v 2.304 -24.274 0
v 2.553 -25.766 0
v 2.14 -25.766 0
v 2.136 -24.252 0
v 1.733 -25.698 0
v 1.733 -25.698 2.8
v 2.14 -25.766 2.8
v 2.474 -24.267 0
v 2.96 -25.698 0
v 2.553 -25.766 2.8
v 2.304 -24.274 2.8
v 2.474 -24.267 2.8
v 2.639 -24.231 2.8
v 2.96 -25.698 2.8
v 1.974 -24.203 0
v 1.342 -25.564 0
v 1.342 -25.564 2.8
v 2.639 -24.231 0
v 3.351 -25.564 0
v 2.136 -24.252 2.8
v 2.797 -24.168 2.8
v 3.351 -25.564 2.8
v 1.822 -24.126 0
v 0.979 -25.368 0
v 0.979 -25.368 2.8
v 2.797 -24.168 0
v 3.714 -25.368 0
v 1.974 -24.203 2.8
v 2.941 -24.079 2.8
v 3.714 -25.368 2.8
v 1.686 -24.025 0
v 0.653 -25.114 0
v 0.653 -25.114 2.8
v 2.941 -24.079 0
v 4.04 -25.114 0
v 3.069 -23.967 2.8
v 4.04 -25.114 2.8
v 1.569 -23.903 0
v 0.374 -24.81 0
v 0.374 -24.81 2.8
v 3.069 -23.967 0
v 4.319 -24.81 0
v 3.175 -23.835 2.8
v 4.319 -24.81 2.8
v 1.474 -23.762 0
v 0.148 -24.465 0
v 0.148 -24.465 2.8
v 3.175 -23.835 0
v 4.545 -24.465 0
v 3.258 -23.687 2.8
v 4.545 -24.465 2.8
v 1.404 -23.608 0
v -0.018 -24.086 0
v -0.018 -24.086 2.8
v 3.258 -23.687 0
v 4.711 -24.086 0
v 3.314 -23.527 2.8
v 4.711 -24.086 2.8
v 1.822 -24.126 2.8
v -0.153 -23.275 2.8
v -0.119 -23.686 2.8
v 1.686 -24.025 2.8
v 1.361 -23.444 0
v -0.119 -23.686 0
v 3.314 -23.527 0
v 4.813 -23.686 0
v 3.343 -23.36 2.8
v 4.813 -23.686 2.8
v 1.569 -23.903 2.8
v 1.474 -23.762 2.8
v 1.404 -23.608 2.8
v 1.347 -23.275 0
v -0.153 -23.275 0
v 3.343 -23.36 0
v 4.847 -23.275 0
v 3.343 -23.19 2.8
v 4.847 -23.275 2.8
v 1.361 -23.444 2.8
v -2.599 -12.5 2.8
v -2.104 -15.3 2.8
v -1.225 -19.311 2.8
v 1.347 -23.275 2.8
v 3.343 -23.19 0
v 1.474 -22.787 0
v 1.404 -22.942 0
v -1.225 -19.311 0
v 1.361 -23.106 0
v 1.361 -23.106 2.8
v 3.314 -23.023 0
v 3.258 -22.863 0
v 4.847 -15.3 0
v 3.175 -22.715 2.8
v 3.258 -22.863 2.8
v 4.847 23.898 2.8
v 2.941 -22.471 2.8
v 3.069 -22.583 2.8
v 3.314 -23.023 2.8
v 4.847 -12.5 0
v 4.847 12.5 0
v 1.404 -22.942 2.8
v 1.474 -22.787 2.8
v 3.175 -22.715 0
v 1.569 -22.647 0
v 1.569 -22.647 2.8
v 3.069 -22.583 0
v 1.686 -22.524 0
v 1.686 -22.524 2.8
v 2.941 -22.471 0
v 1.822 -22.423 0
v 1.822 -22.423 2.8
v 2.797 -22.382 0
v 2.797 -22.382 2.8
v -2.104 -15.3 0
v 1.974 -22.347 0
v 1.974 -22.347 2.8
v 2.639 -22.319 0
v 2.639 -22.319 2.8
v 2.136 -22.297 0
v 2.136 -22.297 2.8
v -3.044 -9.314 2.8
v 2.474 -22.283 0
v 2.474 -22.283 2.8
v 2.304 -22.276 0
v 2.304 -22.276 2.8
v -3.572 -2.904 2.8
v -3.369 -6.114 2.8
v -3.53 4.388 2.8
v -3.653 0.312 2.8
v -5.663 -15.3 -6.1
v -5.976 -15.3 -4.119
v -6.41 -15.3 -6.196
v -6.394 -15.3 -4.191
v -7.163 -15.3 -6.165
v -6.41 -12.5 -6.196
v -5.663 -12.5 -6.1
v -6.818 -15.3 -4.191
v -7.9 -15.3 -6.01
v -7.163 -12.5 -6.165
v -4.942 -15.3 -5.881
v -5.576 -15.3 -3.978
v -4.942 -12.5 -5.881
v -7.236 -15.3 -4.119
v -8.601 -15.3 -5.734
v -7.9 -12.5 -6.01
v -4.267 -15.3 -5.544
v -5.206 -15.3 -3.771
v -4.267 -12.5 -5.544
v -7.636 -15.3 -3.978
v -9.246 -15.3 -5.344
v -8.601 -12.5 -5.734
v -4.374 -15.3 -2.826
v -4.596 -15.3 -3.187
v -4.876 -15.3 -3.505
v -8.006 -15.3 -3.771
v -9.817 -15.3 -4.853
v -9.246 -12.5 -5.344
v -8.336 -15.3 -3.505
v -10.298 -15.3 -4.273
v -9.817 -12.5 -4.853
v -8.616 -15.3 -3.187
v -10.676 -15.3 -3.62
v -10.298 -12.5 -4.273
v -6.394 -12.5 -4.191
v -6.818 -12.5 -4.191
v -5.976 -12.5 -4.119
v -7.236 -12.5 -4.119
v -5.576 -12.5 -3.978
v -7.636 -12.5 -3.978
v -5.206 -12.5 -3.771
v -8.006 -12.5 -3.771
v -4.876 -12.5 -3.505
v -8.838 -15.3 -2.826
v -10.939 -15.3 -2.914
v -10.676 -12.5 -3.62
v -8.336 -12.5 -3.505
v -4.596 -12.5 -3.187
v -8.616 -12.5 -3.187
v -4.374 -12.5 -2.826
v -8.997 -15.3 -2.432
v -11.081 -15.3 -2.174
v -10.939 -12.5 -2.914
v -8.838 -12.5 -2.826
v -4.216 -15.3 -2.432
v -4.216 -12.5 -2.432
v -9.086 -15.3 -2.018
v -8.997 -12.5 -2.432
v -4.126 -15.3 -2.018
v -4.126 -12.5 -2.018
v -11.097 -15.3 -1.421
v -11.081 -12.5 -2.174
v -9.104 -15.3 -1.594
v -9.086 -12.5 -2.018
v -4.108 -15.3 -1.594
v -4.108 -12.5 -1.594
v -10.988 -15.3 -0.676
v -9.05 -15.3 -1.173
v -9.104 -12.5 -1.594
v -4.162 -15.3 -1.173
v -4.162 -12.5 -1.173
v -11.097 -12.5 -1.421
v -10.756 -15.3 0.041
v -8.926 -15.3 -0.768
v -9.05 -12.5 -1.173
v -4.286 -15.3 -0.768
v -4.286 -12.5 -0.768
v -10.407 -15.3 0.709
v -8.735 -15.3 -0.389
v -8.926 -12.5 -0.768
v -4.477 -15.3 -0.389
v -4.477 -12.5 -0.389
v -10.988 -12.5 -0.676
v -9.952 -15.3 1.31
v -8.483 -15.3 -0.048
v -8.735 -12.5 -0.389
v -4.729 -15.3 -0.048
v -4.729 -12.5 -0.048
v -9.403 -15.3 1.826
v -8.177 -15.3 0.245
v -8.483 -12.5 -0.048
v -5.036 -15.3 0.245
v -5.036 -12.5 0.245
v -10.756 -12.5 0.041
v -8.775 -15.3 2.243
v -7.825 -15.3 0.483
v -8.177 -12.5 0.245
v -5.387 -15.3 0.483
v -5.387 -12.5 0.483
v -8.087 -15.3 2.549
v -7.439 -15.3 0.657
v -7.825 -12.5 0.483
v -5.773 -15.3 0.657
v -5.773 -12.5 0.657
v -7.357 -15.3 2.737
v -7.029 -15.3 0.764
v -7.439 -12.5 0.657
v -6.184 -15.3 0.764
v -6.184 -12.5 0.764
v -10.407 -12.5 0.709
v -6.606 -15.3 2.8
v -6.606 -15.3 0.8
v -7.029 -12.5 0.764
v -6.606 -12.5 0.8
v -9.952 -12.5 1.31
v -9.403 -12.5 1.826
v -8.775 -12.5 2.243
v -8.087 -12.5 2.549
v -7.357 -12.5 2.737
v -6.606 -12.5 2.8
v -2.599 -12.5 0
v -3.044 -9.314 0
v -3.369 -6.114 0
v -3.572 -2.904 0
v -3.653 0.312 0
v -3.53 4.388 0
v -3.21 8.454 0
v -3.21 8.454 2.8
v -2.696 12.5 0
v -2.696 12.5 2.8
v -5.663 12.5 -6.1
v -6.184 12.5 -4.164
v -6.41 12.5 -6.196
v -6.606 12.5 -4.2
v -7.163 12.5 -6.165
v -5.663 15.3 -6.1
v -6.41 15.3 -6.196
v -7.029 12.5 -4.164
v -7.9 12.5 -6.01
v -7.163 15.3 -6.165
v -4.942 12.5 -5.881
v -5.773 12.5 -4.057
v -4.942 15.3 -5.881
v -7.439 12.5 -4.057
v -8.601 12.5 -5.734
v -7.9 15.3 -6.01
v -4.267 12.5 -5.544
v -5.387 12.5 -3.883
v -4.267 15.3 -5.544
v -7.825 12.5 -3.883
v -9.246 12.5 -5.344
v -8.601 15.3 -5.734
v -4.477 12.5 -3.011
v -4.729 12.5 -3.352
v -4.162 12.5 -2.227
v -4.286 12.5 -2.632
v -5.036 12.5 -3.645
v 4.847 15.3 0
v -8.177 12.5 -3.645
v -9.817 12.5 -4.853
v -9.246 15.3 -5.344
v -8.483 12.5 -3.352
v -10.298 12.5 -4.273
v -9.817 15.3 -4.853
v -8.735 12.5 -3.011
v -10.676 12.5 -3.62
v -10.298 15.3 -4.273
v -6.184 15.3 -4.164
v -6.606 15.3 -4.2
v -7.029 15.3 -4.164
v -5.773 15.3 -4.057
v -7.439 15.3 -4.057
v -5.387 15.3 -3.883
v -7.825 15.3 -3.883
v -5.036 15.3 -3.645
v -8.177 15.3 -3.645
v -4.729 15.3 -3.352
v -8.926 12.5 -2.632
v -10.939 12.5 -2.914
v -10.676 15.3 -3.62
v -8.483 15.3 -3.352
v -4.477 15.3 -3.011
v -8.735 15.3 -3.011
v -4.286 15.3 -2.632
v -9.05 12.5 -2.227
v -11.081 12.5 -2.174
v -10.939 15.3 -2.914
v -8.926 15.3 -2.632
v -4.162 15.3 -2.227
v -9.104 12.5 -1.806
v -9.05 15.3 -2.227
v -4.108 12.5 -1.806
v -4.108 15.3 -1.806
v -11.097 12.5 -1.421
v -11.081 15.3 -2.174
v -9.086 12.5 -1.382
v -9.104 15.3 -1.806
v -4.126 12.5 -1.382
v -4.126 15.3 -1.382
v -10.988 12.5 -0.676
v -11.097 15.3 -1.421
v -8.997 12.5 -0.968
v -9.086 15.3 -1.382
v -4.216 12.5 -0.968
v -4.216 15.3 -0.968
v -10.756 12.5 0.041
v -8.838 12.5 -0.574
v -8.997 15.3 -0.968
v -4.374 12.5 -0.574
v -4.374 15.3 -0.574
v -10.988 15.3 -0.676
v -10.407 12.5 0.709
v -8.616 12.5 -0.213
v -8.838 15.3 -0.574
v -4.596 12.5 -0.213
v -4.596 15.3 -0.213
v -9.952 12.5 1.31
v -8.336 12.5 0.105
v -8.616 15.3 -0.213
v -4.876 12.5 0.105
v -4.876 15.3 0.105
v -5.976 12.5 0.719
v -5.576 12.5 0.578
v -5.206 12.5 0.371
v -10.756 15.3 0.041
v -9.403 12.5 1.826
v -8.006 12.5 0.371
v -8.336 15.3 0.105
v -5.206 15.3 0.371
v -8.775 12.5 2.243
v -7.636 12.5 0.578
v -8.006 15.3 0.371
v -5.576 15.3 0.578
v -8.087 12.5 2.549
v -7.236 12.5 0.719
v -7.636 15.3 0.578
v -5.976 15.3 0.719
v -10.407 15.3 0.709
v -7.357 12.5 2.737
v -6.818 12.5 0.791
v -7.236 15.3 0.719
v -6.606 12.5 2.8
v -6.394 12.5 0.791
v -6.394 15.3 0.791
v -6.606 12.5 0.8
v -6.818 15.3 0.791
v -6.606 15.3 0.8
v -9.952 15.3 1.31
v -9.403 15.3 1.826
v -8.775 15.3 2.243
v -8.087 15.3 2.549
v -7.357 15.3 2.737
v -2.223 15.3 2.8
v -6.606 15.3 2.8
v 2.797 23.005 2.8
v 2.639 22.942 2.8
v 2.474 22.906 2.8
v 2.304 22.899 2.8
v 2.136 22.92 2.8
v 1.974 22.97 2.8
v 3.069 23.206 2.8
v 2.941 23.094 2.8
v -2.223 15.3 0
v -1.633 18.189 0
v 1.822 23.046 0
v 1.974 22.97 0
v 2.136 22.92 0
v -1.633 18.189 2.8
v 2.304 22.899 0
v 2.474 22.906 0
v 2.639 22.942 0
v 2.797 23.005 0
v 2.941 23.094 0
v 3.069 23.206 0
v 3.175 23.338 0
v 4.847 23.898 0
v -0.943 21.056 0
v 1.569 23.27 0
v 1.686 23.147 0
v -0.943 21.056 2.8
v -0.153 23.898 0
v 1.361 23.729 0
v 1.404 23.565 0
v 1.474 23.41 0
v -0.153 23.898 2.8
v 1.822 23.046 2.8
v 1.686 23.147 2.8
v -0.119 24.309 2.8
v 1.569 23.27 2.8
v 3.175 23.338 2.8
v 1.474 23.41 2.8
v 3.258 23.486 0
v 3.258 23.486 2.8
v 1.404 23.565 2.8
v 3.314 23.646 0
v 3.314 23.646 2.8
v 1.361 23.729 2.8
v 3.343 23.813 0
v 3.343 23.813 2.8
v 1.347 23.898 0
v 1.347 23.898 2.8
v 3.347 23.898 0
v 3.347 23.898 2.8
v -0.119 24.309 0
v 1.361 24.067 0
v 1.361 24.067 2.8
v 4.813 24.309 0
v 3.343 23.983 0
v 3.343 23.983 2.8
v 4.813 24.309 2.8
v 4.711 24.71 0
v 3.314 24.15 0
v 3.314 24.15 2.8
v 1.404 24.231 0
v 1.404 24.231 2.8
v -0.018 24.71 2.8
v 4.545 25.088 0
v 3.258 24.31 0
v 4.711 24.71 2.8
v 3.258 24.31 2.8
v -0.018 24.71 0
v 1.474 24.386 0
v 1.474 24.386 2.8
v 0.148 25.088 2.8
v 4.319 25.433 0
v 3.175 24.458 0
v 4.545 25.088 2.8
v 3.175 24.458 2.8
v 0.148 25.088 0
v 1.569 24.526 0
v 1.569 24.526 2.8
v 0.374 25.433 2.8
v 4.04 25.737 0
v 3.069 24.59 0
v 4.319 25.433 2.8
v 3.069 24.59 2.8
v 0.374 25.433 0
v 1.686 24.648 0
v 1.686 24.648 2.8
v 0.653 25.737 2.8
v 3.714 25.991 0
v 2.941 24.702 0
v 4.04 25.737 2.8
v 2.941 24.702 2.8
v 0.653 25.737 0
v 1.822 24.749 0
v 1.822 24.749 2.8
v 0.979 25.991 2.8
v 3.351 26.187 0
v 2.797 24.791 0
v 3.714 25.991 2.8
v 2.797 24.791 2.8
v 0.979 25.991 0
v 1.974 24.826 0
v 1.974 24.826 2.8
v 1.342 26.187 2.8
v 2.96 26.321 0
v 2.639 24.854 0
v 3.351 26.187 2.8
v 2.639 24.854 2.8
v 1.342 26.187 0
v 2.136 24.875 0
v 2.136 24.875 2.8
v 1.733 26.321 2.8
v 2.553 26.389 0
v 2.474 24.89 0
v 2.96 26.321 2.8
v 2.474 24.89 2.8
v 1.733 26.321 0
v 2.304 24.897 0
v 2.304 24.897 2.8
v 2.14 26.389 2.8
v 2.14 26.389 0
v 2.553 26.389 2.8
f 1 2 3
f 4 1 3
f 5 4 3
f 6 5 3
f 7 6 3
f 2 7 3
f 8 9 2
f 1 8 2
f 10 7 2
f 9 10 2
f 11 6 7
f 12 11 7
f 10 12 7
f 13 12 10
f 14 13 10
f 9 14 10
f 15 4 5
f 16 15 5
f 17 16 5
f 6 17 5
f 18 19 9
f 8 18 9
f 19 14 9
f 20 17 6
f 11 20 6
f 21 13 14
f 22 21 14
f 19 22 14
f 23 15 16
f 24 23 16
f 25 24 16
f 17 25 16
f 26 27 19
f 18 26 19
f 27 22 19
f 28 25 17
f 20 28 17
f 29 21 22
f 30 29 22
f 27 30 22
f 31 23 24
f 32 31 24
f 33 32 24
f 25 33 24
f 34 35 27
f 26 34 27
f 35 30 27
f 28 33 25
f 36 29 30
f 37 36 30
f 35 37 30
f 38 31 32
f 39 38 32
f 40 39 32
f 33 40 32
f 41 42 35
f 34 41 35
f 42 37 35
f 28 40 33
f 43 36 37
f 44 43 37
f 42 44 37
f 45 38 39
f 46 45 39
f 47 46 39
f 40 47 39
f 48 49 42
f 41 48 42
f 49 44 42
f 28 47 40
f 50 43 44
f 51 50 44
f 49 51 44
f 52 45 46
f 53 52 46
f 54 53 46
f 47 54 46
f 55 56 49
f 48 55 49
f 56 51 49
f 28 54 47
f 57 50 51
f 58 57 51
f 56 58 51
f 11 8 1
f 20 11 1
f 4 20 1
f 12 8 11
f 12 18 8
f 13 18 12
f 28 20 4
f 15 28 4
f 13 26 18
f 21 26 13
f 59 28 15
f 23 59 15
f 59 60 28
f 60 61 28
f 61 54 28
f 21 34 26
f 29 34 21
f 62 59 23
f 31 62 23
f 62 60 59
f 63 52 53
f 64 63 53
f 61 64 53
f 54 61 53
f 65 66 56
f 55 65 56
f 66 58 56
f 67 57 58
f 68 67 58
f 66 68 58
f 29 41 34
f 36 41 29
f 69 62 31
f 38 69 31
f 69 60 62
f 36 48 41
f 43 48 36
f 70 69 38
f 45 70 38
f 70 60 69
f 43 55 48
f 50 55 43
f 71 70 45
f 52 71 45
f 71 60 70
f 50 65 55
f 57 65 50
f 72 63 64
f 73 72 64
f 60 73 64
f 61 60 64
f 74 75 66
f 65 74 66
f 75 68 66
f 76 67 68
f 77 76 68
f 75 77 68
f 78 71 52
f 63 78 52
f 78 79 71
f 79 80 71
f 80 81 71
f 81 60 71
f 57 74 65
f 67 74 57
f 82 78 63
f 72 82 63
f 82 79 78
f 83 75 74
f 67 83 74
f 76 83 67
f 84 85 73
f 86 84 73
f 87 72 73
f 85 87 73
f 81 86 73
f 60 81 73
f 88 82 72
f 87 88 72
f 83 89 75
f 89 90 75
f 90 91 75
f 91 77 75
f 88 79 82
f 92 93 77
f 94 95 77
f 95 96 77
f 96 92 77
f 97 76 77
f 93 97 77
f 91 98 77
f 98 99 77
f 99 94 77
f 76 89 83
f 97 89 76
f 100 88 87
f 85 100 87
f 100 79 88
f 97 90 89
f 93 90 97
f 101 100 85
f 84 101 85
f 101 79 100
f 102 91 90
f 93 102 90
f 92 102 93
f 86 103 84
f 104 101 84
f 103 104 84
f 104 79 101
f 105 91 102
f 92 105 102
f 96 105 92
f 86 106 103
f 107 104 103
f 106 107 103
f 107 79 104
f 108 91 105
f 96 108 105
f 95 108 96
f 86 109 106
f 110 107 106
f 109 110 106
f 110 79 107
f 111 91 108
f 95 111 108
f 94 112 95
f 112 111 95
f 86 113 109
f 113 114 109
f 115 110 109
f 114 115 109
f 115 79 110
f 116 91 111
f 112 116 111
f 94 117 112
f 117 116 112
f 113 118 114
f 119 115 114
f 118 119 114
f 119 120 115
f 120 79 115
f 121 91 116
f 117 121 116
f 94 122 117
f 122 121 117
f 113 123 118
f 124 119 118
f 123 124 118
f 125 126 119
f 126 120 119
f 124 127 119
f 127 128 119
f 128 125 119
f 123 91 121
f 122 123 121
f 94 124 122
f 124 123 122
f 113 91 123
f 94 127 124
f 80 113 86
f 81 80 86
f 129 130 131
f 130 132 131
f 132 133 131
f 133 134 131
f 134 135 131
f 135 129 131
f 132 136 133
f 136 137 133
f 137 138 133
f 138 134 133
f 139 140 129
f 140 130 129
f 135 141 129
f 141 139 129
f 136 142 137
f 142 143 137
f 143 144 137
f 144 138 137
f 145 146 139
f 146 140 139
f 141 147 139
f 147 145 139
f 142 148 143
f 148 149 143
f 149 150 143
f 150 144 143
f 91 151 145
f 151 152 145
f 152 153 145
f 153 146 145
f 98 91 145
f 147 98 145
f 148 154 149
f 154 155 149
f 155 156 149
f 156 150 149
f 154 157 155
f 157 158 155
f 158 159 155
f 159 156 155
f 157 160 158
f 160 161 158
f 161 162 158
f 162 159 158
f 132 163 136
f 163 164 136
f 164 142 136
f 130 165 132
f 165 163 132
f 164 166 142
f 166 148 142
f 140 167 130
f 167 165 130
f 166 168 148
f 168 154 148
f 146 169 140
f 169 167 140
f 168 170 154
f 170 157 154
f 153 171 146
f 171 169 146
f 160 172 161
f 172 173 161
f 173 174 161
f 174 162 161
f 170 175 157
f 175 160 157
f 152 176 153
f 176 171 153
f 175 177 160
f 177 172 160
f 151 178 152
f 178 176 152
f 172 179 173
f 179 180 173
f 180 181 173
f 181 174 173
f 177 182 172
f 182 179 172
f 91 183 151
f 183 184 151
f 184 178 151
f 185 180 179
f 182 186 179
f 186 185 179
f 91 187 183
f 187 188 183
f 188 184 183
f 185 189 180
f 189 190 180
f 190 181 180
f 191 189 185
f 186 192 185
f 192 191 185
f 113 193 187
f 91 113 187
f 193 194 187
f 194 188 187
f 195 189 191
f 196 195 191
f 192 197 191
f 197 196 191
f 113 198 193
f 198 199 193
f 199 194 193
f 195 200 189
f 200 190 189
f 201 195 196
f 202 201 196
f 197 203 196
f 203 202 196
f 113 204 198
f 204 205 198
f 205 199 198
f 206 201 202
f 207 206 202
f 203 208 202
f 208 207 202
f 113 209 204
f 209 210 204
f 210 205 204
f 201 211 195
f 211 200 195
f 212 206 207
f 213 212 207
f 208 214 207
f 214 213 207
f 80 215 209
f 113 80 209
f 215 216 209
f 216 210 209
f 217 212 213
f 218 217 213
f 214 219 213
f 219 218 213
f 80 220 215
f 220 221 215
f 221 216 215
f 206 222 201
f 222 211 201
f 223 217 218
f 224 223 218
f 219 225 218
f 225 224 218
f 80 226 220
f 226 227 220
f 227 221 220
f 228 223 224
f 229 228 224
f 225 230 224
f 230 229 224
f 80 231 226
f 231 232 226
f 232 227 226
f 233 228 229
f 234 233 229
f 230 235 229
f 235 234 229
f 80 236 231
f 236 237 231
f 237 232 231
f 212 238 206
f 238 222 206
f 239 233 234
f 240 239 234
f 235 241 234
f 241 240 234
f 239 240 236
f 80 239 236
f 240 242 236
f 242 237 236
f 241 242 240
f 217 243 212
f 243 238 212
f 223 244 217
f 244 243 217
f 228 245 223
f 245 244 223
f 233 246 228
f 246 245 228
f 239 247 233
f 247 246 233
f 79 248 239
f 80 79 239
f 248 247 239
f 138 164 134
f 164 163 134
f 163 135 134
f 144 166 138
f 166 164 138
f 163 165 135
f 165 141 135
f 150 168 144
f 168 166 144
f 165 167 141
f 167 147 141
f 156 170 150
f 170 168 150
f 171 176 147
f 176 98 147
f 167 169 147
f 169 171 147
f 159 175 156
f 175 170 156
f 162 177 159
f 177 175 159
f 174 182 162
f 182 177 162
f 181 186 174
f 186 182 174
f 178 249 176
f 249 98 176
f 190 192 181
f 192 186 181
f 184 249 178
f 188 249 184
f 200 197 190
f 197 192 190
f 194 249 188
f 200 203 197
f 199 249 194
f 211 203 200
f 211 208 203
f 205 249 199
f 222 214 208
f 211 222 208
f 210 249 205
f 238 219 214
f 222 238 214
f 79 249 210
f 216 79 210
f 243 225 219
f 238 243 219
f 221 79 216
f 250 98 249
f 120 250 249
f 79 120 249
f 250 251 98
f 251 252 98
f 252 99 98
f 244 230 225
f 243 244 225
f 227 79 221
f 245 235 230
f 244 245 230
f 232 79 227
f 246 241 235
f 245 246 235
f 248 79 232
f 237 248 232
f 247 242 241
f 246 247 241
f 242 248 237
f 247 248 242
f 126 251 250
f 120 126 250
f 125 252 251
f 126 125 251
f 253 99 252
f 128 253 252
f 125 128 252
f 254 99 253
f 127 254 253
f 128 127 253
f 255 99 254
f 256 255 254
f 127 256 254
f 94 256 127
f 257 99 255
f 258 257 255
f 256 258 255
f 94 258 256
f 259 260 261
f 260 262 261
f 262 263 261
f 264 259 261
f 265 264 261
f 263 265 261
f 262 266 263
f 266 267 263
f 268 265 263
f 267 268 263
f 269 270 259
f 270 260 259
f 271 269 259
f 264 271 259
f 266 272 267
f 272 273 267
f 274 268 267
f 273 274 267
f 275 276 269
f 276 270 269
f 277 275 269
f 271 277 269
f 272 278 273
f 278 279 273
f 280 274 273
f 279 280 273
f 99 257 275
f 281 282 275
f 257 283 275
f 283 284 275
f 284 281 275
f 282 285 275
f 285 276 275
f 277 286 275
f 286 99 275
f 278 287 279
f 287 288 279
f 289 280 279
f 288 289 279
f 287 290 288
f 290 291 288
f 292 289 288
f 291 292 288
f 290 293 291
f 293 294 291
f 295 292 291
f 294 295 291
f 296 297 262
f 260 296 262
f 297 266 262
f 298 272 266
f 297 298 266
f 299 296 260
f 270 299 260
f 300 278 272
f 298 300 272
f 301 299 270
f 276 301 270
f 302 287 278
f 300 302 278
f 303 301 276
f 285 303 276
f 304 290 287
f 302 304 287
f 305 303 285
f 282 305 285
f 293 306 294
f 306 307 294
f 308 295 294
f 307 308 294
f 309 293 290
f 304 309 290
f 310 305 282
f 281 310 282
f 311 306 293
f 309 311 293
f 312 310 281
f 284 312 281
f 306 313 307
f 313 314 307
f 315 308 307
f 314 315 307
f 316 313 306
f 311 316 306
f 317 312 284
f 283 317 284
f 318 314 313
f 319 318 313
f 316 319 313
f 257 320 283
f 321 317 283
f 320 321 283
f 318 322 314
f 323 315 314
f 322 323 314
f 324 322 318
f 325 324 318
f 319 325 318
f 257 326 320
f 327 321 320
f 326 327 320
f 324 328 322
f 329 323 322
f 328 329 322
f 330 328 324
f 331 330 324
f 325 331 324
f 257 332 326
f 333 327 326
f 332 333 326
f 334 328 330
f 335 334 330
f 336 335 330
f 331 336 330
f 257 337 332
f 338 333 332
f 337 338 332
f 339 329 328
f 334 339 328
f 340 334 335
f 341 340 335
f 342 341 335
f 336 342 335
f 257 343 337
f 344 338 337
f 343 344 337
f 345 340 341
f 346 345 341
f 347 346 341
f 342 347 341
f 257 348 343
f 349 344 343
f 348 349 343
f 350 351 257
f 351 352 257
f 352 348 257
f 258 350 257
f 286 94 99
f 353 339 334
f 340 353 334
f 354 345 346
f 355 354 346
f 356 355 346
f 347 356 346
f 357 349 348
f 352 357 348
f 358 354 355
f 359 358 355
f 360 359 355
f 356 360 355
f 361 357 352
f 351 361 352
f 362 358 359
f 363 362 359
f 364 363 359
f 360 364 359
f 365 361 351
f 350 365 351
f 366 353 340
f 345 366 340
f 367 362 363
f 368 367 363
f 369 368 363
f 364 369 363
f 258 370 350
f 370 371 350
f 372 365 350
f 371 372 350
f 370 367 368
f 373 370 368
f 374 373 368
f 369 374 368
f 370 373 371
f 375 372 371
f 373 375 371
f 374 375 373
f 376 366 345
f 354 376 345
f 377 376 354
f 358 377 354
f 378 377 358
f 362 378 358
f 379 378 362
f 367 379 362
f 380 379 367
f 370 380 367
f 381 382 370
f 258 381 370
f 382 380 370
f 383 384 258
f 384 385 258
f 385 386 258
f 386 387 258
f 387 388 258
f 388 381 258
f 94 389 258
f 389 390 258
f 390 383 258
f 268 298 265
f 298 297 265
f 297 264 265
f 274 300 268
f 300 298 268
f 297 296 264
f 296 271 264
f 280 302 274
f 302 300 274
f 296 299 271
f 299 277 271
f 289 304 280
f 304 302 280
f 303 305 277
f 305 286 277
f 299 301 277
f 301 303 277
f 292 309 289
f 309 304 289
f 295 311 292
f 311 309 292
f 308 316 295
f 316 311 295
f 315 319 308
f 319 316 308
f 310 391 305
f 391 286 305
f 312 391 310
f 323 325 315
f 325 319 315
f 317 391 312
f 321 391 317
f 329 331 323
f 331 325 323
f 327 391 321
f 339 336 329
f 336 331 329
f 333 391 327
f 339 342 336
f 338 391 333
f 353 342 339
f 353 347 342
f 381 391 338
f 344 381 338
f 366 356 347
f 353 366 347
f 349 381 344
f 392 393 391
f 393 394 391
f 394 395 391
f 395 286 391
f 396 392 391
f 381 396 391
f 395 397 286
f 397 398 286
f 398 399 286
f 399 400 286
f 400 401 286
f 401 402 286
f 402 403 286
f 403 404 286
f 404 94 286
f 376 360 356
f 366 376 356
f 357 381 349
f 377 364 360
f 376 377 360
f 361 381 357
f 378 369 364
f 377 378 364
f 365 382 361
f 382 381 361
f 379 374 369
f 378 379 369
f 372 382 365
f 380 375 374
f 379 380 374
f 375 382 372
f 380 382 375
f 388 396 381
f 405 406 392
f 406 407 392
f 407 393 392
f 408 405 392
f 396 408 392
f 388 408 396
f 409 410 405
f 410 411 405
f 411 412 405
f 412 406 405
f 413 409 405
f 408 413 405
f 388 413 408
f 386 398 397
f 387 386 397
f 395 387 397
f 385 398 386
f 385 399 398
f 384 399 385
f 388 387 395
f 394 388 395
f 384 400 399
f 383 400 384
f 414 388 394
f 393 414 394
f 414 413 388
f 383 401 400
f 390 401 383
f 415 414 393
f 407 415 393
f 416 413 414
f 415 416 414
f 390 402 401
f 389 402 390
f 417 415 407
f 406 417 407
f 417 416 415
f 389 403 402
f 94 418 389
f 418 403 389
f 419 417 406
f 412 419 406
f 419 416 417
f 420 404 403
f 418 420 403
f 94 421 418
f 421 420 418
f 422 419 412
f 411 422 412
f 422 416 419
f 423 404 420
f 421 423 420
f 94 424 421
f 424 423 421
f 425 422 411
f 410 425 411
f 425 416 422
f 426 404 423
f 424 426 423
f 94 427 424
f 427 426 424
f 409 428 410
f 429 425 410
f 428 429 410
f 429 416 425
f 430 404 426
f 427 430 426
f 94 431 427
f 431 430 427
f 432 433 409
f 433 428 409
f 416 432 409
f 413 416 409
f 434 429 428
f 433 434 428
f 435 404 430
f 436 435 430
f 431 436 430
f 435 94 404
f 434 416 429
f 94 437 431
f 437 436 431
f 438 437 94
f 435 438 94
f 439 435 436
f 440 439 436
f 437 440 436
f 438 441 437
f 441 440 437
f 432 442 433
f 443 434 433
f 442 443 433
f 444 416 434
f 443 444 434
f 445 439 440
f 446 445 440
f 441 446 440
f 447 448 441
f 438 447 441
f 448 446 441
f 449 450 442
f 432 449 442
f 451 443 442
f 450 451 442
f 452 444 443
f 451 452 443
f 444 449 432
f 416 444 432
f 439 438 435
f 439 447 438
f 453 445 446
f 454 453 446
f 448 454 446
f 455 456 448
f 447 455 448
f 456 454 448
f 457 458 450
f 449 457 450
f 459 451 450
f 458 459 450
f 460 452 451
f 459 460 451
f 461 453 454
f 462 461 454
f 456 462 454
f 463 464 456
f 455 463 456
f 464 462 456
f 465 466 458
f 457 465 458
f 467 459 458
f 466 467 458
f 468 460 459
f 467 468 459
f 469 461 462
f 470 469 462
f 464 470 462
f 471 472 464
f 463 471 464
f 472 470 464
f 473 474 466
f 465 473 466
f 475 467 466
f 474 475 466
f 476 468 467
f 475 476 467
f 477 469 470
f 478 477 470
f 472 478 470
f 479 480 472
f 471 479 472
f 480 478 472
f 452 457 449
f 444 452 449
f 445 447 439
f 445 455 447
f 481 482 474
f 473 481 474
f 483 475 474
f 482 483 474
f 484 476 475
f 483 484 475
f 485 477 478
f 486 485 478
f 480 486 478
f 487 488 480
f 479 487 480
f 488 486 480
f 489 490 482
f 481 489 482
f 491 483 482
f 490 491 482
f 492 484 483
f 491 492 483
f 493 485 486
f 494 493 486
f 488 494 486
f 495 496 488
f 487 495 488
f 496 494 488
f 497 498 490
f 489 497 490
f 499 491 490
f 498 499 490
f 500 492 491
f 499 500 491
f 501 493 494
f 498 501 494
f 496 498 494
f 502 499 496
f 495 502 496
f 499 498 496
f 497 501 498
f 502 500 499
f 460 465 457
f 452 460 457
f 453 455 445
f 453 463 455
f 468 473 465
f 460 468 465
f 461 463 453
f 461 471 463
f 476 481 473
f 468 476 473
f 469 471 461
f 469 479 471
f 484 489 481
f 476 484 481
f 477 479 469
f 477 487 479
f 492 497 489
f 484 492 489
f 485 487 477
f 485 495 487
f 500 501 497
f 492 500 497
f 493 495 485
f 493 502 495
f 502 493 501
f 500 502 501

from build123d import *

# Parameters (mm, degrees)
CROQUIS3_R              = 1
SALIENTE_EXTRUIR1_DEPTH = 2.8
SALIENTE_EXTRUIR2_START = 12.5
CROQUIS4_R              = 2.5
SALIENTE_EXTRUIR2_DEPTH = 2.8
SALIENTE_EXTRUIR3_START = -15.3
CROQUIS4_2_R            = 2.5
SALIENTE_EXTRUIR3_DEPTH = 2.8


with BuildPart() as part:
    # Croquis3 → Saliente-Extruir1 (new body)
    with BuildSketch(Plane.XY):
        with BuildLine():
            Line((4.846627727, 23.897818016), (4.846627727, -23.274751548))
            ThreePointArc((4.846627727, -23.274751548), (2.346627727, -25.774751548), (-0.153372273, -23.274751548))
            ThreePointArc((-0.153372273, -23.274751548), (-2.736363907, -11.605217887), (-3.653372273, 0.311533234))
            ThreePointArc((-3.653372273, 0.311533234), (-2.736363907, 12.228284355), (-0.153372273, 23.897818016))
            ThreePointArc((-0.153372273, 23.897818016), (2.346627727, 26.397818016), (4.846627727, 23.897818016))
        make_face()
        with Locations((2.346627727, 23.897818016)):
            Circle(CROQUIS3_R, mode=Mode.SUBTRACT)
        with Locations((2.346627727, -23.274751548)):
            Circle(CROQUIS3_R, mode=Mode.SUBTRACT)
    extrude(amount=SALIENTE_EXTRUIR1_DEPTH)

    # Croquis4 → Saliente-Extruir2 (add)
    with BuildSketch(Plane(origin=(0, 0, 0), x_dir=(1, 0, 0), z_dir=(0, 1, 0)).offset(SALIENTE_EXTRUIR2_START)):
        with BuildLine():
            Line((4.846627727, 0), (-4.267297244, 5.544479263))
            ThreePointArc((-4.267297244, 5.544479263), (-10.939117757, 2.914463527), (-6.606095909, -2.8))
            Line((-6.606095909, -2.8), (-3.653372273, -2.8))
            Line((-3.653372273, -2.8), (4.846627727, -2.8))
            Line((4.846627727, -2.8), (4.846627727, 0))
        make_face()
        with Locations((-6.606095909, 1.7)):
            Circle(CROQUIS4_R, mode=Mode.SUBTRACT)
    extrude(amount=SALIENTE_EXTRUIR2_DEPTH)

    # Croquis4<2> → Saliente-Extruir3 (add)
    with BuildSketch(Plane(origin=(0, 0, 0), x_dir=(1, 0, 0), z_dir=(0, 1, 0)).offset(SALIENTE_EXTRUIR3_START)):
        with BuildLine():
            Line((4.846627727, 0), (-4.267297244, 5.544479263))
            ThreePointArc((-4.267297244, 5.544479263), (-10.939117757, 2.914463527), (-6.606095909, -2.8))
            Line((-6.606095909, -2.8), (-3.653372273, -2.8))
            Line((-3.653372273, -2.8), (4.846627727, -2.8))
            Line((4.846627727, -2.8), (4.846627727, 0))
        make_face()
        with Locations((-6.606095909, 1.7)):
            Circle(CROQUIS4_2_R, mode=Mode.SUBTRACT)
    extrude(amount=SALIENTE_EXTRUIR3_DEPTH)


solid = part.part
